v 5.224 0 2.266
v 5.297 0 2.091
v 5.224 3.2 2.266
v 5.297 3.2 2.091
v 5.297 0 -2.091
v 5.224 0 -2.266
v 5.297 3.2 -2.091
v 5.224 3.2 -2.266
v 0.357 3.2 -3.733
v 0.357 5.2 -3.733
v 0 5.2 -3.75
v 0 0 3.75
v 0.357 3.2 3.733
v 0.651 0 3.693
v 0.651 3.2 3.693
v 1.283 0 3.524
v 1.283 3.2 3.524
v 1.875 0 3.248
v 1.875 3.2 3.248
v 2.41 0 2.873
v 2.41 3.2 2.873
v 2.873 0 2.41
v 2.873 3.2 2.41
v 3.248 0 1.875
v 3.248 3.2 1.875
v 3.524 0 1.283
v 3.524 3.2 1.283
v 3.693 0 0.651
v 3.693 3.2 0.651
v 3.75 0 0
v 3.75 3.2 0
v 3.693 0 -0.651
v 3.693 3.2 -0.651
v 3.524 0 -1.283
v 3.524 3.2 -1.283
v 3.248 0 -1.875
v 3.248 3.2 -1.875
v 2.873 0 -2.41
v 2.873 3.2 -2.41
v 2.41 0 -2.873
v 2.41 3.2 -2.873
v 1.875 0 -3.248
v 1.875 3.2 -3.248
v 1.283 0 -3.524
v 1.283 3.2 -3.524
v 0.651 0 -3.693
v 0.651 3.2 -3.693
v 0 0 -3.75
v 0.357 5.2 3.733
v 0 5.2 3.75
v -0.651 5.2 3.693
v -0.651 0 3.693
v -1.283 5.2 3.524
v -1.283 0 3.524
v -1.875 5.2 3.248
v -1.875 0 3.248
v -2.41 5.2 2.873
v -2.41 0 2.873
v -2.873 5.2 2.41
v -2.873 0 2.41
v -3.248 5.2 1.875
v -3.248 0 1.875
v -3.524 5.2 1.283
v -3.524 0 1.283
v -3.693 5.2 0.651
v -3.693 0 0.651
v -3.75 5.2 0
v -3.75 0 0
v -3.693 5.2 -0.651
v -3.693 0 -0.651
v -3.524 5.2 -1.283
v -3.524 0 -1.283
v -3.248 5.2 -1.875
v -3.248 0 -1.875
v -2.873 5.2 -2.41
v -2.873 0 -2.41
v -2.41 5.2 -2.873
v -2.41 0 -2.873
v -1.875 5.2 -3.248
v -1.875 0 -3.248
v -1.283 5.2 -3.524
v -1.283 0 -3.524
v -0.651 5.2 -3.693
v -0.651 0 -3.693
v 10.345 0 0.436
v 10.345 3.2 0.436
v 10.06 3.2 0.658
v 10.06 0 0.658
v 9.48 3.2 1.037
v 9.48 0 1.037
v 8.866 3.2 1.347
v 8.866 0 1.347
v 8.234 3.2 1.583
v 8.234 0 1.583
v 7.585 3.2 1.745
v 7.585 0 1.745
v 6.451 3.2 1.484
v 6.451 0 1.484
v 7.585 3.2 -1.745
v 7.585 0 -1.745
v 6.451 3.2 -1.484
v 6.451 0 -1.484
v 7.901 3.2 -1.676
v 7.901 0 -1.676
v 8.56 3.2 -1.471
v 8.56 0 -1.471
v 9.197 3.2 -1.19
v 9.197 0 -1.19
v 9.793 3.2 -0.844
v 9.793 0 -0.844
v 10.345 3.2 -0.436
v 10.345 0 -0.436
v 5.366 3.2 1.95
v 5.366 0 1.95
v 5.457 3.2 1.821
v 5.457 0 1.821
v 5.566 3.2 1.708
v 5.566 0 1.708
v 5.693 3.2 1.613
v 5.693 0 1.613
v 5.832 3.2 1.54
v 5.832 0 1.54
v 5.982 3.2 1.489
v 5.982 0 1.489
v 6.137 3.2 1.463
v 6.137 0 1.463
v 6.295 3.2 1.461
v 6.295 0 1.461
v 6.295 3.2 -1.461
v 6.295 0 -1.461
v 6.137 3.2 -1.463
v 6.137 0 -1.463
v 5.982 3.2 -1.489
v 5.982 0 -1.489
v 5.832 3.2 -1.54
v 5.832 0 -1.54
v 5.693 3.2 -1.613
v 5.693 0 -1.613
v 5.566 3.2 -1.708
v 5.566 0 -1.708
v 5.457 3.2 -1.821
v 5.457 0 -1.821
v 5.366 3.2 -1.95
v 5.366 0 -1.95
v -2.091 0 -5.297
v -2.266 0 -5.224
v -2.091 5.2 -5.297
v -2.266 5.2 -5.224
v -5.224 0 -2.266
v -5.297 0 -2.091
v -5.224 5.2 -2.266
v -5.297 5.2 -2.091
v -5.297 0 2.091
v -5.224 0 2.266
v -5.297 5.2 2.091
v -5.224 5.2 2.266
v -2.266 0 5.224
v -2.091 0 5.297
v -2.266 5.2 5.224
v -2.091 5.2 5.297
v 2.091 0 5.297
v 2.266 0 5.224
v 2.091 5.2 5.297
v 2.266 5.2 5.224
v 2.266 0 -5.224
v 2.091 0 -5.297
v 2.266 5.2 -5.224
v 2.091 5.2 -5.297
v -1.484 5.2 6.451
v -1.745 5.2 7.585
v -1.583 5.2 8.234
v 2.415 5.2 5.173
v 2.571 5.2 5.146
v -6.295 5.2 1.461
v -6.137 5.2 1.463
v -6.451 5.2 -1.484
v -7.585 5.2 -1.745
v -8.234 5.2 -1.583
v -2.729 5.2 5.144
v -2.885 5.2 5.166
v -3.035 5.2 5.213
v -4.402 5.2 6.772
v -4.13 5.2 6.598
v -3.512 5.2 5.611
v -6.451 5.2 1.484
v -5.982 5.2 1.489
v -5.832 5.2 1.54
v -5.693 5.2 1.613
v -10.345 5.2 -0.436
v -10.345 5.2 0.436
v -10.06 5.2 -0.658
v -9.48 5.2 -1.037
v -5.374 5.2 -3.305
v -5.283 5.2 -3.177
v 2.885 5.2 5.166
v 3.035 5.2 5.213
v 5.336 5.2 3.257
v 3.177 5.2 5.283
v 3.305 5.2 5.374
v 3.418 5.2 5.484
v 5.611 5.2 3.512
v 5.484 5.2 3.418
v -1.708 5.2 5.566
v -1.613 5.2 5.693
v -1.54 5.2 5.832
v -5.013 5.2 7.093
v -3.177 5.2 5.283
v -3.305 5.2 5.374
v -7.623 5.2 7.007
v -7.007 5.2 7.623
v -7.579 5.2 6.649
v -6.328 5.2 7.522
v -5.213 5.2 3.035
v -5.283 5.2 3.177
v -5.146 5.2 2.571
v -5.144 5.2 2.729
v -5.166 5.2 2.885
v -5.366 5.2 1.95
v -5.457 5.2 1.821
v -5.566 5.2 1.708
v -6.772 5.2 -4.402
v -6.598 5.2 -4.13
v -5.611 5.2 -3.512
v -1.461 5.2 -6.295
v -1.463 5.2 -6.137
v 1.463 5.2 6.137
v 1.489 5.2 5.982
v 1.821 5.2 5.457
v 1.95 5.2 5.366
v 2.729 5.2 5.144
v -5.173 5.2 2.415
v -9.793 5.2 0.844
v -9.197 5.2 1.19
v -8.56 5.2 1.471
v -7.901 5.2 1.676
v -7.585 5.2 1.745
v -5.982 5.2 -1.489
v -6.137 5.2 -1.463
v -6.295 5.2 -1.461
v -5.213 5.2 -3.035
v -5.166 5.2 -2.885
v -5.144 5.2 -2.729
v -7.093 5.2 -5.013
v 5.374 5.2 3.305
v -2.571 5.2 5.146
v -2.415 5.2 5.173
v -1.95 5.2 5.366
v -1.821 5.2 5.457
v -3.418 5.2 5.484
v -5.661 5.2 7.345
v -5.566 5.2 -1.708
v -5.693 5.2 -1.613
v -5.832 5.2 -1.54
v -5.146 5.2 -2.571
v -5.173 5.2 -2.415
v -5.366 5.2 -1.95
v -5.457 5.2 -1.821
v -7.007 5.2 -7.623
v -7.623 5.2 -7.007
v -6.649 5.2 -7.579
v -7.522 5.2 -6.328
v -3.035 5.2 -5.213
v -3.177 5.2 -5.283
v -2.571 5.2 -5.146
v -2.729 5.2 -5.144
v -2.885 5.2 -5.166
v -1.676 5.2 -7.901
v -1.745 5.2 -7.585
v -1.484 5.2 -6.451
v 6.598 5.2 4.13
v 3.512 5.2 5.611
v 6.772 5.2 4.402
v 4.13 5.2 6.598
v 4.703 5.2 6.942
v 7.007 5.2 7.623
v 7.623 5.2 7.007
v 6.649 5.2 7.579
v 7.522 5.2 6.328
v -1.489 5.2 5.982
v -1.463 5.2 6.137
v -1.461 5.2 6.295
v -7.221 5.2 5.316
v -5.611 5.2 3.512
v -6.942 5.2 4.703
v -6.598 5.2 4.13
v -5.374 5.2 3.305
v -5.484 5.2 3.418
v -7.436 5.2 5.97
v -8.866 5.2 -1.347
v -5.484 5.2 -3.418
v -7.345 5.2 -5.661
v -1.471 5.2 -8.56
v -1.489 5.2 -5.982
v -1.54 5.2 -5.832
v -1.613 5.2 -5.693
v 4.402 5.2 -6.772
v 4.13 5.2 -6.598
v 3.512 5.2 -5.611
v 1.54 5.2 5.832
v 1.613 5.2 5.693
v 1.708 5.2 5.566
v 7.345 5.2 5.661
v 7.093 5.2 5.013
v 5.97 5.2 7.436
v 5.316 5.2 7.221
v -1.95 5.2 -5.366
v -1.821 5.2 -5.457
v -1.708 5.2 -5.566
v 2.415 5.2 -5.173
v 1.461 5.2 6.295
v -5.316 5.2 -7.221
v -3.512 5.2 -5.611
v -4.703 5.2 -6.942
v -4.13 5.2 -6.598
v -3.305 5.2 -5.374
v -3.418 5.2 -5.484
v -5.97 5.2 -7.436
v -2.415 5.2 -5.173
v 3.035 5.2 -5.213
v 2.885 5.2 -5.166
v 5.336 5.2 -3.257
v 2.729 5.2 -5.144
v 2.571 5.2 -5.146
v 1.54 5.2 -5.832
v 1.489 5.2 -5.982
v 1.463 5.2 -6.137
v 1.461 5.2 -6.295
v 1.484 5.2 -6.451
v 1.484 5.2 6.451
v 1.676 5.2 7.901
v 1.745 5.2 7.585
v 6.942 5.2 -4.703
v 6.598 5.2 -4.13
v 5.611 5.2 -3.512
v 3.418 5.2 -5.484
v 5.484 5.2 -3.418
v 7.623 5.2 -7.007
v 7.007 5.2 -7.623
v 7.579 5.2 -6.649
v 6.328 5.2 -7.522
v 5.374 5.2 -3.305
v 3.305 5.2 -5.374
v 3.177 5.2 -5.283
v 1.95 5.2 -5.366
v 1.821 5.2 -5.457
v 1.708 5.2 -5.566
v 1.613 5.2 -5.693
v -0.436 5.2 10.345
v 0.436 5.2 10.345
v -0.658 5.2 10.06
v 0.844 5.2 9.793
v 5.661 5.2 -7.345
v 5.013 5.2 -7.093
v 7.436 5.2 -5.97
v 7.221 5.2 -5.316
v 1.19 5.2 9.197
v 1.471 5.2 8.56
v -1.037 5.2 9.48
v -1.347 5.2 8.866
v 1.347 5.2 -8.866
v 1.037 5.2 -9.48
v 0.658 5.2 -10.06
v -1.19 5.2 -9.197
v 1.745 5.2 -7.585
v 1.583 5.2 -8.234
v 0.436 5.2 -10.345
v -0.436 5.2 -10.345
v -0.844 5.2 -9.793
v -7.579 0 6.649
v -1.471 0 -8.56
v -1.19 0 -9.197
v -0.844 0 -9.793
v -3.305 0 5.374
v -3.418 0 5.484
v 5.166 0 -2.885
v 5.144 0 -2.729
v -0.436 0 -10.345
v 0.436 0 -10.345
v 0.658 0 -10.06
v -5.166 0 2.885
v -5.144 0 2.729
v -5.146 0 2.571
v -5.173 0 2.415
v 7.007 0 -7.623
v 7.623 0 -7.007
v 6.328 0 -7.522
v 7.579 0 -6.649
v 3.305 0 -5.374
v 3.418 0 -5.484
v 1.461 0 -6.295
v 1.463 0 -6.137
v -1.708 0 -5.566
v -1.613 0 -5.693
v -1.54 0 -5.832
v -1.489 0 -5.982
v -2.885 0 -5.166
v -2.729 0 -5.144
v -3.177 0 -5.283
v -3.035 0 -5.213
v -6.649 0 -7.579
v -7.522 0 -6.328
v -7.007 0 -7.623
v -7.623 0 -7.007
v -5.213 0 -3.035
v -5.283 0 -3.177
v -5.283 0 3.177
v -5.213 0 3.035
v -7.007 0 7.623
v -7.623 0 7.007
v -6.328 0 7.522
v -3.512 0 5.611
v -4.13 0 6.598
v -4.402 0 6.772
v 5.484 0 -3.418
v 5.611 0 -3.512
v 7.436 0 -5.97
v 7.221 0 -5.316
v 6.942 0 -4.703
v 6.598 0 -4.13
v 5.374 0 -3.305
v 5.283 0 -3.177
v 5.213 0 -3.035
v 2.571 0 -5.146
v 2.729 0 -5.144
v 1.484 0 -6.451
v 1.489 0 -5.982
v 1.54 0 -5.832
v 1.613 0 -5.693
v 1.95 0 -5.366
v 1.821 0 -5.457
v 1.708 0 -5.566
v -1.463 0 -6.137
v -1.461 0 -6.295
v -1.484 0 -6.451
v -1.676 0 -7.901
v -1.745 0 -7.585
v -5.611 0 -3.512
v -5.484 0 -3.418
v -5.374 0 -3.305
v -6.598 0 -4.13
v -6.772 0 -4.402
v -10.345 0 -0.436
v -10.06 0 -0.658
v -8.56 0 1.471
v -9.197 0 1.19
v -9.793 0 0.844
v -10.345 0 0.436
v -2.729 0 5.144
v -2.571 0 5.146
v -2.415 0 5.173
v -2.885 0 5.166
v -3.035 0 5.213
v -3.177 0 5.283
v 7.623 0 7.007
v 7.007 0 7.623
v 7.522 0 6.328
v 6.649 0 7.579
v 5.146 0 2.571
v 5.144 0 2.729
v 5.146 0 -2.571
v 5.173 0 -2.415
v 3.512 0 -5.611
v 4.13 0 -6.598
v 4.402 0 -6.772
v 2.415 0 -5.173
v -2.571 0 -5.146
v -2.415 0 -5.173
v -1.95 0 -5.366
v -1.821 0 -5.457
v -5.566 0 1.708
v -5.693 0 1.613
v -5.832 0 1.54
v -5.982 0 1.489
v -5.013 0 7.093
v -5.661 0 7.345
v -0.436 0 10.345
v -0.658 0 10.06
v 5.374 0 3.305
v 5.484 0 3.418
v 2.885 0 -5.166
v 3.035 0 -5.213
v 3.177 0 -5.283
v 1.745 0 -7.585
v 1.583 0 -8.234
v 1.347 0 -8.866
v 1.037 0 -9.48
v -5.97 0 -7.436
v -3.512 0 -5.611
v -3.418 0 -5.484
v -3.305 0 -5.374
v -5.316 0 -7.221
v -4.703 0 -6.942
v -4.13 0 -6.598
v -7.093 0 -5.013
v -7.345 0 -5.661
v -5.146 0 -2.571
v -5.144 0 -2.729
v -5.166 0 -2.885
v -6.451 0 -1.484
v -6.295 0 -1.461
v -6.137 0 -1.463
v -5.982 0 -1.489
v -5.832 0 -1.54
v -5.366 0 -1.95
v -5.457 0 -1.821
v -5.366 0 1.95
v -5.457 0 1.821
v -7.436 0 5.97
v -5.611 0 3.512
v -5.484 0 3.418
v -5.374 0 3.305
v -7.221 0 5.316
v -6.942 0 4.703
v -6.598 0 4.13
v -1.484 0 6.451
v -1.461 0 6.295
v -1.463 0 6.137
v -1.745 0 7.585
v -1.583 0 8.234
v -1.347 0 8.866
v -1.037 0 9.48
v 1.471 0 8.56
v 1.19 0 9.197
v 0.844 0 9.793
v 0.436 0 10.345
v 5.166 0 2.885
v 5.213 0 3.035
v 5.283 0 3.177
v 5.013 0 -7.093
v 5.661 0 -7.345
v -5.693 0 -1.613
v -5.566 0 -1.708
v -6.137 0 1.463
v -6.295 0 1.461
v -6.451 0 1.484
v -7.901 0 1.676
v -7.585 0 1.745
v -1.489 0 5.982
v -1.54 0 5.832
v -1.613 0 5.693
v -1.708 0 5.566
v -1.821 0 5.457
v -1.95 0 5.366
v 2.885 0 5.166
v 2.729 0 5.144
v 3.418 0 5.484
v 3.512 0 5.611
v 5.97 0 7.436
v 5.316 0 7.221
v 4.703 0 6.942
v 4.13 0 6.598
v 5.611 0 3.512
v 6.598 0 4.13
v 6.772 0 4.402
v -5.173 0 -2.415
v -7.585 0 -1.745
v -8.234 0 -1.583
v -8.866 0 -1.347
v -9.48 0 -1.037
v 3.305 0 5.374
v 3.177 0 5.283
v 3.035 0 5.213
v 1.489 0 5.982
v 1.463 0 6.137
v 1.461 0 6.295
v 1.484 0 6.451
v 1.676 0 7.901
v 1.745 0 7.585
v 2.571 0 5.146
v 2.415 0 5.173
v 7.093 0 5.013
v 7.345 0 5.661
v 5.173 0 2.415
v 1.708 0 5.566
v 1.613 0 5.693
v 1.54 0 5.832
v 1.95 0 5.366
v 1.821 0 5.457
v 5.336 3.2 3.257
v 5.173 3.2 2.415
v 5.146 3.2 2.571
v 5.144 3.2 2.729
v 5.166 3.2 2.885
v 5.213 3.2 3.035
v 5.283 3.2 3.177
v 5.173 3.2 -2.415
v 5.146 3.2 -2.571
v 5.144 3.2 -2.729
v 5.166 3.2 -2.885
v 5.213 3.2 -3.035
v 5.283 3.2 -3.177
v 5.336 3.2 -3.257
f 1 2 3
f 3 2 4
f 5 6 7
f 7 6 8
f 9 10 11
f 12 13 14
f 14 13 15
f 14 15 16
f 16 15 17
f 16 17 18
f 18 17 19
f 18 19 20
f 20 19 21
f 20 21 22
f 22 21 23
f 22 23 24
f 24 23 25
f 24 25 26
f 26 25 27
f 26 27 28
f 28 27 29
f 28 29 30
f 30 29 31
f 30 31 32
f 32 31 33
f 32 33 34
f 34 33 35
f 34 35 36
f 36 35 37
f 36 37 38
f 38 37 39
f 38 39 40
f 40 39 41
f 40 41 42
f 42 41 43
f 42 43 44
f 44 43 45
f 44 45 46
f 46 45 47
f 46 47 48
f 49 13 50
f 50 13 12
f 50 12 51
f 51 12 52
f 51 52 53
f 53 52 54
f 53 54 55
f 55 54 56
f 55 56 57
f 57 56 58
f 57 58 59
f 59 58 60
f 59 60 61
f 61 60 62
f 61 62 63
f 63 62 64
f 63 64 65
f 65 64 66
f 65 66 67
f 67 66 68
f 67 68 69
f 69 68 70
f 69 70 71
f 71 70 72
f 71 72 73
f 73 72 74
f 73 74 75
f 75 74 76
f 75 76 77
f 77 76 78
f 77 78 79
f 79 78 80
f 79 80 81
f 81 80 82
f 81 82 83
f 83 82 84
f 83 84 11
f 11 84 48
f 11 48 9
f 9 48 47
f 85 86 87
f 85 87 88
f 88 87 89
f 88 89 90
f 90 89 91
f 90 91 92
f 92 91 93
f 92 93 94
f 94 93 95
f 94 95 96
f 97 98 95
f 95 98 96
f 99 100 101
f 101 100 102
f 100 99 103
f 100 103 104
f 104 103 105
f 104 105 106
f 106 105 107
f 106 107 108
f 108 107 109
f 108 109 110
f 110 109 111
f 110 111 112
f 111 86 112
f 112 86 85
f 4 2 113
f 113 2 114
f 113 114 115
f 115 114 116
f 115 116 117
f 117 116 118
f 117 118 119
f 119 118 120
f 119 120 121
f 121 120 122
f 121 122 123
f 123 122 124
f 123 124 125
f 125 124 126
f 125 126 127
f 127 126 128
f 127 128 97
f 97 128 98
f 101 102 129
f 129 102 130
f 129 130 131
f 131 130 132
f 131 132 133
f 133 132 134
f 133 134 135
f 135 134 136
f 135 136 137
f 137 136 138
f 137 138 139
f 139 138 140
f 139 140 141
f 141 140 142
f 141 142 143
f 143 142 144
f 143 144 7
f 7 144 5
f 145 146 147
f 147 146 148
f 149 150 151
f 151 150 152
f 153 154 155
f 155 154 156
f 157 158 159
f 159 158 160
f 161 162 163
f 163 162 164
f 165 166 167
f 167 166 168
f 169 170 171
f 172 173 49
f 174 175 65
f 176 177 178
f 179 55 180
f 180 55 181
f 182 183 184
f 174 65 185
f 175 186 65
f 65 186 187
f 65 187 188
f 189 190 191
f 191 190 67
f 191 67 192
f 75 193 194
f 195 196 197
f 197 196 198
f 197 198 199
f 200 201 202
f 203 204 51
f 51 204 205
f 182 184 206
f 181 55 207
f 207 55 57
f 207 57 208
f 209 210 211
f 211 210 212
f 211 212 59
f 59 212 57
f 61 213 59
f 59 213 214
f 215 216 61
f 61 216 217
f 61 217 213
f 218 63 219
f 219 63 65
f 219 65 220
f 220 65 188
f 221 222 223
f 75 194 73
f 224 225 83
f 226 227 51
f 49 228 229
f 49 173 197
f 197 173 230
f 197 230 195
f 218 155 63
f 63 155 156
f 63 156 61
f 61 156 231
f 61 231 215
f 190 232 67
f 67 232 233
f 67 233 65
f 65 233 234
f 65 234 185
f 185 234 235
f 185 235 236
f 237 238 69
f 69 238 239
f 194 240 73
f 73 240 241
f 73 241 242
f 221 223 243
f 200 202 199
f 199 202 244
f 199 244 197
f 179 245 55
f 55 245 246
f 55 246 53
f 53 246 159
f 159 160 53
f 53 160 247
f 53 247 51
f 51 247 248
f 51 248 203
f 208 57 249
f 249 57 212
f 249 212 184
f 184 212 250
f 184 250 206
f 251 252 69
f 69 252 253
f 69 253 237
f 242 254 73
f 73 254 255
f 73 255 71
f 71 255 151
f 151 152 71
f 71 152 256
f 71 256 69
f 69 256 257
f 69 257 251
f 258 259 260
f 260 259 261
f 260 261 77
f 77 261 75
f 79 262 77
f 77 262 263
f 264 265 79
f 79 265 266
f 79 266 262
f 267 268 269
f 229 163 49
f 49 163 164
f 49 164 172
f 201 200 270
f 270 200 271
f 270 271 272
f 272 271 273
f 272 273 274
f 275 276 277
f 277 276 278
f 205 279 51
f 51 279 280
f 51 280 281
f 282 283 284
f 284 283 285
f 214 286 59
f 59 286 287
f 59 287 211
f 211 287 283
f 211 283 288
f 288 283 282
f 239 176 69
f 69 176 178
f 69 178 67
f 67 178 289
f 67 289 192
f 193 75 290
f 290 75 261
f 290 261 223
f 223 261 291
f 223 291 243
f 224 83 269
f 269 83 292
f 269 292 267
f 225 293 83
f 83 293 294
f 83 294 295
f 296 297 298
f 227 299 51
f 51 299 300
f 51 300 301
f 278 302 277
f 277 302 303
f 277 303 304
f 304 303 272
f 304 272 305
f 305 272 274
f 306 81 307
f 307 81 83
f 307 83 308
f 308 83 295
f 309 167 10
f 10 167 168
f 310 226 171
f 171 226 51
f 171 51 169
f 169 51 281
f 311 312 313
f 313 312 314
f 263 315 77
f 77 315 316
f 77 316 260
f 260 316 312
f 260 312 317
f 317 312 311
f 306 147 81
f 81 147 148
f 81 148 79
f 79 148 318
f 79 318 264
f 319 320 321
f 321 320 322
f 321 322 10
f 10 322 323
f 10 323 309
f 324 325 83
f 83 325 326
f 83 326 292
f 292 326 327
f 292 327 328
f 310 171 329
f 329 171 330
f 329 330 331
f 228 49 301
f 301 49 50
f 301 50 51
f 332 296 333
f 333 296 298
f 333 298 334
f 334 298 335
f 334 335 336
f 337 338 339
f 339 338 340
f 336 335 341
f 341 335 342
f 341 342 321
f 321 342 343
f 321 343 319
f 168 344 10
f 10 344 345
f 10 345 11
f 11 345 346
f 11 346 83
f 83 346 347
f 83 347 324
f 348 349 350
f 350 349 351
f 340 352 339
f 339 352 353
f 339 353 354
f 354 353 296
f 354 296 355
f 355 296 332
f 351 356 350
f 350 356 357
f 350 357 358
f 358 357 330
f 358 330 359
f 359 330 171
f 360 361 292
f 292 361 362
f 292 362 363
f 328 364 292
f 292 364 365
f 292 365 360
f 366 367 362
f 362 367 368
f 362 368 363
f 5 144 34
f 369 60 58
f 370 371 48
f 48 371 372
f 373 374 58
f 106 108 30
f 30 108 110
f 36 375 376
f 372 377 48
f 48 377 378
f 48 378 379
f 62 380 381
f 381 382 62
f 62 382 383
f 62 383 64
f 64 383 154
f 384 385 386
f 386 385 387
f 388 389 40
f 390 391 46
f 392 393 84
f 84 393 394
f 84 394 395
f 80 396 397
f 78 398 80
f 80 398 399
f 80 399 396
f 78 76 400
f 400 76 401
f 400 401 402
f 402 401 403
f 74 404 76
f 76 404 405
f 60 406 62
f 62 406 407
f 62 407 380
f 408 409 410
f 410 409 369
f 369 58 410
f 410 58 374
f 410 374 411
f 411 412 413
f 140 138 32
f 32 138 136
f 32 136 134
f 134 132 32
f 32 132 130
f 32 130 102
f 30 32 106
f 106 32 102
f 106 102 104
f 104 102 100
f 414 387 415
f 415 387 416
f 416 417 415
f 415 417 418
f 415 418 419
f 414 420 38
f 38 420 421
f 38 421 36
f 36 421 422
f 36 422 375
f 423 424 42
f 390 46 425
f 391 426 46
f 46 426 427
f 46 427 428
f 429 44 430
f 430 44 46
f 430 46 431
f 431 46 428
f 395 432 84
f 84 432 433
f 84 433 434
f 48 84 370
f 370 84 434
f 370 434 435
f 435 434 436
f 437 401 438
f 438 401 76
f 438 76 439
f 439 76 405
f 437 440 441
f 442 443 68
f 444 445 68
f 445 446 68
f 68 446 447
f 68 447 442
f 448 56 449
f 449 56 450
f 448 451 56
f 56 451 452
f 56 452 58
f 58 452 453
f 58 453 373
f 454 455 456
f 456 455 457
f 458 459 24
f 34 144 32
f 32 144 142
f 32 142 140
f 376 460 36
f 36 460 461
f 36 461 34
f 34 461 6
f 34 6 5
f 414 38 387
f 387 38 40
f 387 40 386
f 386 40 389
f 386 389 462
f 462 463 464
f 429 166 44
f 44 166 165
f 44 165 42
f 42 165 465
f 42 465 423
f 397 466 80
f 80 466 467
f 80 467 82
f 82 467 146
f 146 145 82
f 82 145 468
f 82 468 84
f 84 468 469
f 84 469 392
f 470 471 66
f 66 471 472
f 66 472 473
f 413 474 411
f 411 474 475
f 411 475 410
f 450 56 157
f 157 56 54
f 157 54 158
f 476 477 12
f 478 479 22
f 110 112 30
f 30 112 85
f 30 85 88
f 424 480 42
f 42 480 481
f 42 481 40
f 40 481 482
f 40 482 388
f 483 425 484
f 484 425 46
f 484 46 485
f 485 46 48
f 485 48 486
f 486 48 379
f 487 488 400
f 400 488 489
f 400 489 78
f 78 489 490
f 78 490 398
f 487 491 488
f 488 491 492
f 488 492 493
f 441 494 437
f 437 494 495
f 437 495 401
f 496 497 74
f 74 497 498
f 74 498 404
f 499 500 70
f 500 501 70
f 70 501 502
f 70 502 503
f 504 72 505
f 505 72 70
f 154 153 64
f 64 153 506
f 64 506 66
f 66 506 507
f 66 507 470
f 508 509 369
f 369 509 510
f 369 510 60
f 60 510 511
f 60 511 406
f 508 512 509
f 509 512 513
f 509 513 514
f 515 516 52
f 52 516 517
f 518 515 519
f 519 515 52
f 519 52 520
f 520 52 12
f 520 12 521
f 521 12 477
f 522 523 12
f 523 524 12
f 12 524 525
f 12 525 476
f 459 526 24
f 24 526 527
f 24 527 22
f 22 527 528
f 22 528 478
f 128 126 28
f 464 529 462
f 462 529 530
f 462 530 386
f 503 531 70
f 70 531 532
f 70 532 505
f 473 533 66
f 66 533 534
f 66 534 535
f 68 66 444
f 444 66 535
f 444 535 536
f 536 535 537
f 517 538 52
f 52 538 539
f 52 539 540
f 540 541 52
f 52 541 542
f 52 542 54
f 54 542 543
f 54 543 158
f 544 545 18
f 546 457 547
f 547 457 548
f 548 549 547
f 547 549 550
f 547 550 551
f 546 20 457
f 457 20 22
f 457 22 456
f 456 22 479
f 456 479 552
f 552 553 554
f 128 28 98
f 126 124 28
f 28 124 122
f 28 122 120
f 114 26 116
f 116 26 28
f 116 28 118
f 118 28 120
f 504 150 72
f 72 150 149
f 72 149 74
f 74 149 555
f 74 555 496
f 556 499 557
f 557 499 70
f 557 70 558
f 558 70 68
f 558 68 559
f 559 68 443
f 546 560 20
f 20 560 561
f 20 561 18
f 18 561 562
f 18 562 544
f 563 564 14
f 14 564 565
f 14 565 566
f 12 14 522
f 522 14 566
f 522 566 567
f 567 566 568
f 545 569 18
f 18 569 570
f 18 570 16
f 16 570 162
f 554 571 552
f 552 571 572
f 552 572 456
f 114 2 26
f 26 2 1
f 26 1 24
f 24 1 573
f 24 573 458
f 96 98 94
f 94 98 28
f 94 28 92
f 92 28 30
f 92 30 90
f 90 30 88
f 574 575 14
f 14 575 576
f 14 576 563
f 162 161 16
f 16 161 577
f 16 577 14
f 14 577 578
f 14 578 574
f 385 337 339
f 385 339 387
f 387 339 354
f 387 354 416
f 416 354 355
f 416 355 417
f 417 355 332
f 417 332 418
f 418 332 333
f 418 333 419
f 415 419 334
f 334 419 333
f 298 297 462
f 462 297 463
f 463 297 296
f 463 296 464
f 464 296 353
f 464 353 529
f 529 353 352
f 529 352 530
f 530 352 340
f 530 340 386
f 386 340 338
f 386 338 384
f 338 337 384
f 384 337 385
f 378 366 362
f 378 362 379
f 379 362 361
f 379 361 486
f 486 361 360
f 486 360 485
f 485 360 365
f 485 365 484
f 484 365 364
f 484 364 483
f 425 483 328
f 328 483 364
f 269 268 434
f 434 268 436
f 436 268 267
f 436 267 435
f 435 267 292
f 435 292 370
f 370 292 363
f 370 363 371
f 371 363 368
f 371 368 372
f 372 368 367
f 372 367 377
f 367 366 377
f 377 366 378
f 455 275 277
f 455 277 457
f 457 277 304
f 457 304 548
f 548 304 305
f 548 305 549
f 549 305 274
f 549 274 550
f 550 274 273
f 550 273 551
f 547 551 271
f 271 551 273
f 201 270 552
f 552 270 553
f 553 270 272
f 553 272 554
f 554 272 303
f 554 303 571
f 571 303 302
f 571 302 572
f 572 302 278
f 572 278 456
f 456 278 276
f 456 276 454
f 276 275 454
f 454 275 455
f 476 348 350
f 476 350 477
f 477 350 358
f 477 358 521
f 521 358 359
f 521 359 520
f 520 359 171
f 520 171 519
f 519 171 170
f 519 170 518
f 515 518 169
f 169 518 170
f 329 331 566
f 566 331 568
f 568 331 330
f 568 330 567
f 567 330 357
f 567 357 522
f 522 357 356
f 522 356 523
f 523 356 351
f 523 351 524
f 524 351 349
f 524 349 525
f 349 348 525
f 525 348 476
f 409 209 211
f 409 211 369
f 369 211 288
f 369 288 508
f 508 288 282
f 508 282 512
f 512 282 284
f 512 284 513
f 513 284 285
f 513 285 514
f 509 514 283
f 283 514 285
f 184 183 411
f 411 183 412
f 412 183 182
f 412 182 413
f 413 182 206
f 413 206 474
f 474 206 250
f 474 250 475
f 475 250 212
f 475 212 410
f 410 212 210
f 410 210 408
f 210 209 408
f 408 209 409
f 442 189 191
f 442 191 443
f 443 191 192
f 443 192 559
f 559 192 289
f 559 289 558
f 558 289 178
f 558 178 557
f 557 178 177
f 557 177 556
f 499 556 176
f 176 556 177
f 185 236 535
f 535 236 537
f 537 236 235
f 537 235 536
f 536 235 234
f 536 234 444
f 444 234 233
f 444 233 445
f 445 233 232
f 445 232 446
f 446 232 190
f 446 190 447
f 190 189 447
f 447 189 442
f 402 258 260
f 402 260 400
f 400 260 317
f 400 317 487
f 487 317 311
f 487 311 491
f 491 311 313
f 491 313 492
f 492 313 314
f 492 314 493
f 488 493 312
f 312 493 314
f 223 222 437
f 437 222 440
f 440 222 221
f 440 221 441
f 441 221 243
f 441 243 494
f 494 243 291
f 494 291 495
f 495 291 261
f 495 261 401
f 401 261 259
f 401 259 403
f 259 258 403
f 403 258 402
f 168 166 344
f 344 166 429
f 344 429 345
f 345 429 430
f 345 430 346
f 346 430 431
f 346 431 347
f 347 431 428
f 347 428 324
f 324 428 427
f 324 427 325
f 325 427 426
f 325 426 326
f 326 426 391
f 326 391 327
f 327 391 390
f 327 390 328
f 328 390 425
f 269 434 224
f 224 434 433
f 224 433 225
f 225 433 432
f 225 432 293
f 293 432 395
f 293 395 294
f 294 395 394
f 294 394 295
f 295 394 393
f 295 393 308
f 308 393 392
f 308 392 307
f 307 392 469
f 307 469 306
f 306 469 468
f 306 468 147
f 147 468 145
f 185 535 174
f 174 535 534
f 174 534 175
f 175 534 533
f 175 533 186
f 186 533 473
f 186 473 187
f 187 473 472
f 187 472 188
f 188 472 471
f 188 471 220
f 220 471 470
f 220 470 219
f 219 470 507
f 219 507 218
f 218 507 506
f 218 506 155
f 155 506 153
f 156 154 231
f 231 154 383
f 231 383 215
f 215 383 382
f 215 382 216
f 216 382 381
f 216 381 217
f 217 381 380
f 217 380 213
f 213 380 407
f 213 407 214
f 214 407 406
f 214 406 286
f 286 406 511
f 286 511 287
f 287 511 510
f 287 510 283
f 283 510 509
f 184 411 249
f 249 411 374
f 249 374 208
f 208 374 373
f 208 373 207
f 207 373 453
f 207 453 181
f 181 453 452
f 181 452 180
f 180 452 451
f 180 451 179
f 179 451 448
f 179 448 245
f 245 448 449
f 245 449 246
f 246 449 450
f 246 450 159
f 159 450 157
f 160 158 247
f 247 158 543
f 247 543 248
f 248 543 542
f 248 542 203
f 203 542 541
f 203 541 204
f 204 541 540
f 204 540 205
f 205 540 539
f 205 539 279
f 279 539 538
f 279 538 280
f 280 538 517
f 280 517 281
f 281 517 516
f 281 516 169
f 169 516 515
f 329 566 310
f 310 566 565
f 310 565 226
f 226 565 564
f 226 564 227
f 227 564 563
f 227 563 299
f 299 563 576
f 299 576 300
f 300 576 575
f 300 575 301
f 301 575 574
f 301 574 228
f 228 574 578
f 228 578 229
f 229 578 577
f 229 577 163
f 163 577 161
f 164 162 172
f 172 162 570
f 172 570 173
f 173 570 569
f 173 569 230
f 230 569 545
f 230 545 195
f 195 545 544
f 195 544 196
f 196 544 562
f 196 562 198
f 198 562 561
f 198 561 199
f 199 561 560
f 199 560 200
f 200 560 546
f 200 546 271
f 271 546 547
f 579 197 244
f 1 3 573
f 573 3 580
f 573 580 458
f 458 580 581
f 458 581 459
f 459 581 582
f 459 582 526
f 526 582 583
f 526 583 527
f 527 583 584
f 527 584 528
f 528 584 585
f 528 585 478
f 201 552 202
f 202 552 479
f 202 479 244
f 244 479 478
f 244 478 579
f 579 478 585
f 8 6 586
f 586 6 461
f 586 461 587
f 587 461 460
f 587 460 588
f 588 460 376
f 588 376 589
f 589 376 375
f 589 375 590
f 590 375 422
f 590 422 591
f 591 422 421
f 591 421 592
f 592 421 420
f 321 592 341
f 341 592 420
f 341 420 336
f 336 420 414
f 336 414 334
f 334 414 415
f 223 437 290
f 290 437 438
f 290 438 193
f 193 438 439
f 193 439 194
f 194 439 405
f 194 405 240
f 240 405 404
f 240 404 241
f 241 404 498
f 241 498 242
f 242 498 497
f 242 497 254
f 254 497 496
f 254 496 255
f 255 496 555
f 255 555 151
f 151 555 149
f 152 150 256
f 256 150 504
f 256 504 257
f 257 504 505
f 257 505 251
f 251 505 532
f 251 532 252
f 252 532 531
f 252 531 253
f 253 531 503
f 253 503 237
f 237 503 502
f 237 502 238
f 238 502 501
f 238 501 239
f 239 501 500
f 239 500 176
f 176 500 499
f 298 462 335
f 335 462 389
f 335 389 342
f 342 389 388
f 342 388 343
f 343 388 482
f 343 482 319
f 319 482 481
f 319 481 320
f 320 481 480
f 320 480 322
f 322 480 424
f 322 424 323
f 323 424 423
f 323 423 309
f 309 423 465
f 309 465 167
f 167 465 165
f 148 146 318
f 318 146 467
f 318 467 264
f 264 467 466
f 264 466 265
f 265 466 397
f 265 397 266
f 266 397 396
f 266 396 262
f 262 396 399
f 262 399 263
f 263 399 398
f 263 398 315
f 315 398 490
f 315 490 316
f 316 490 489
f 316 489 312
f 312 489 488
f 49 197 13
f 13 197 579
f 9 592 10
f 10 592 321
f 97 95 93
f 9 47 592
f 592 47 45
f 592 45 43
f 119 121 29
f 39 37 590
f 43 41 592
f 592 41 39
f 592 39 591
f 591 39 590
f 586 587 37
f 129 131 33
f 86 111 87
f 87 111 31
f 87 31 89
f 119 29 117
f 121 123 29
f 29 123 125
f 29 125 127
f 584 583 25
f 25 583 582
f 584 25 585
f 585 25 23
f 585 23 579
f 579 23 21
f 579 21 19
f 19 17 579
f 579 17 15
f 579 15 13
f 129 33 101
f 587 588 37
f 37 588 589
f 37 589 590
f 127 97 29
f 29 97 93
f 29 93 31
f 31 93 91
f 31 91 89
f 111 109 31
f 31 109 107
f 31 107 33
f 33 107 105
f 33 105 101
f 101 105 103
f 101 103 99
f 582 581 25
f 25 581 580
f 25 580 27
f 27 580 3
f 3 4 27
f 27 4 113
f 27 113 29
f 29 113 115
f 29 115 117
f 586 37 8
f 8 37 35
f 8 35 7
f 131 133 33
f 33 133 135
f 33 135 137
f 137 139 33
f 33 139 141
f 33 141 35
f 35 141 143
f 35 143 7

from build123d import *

# Parameters (mm, degrees)
SKETCH1_R           = 5.6945
SKETCH1_R_2         = 3.75
BOSS_EXTRUDE1_DEPTH = 5.2
BOSS_EXTRUDE3_START = -5.2
BOSS_EXTRUDE3_DEPTH = 5.2
FILLET1_R           = 1
FILLET2_R           = 1
CUT_EXTRUDE1_START  = -2
CUT_EXTRUDE1_DEPTH  = 2


with BuildPart() as part:
    # Sketch1 → Boss-Extrude1 (new body)
    with BuildSketch(Plane(origin=(0, 0, 0), x_dir=(1, 0, 0), z_dir=(0, 1, 0))):
        with Locations(Location((0, 0, 0), (0, 0, 270))):
            Circle(SKETCH1_R)
        with Locations(Location((0, 0, 0), (0, 0, 270))):
            Circle(SKETCH1_R_2, mode=Mode.SUBTRACT)
    extrude(amount=BOSS_EXTRUDE1_DEPTH)

    # Sketch2 → Boss-Extrude3 (add)
    with BuildSketch(Plane(origin=(0, 5.2, 0), x_dir=(1, 0, 0), z_dir=(0, 1, 0)).offset(BOSS_EXTRUDE3_START)):
        with BuildLine():
            Line((1.276851128, 5.549502811), (1.745257837, 7.585311288))
            add(Edge.make_bspline(
                [(1.745257837, 7.585311288), (1.554411596, 8.589760917), (1.089783036, 9.55790996), (0.435527939, 10.344585757)],
                knots=[0, 0, 0, 0, 1, 1, 1, 1], degree=3))
            ThreePointArc((0.435527939, 10.344585757), (0, 10.35375), (-0.435527939, 10.344585757))
            add(Edge.make_bspline(
                [(-1.745257837, 7.585311288), (-1.554411596, 8.589760917), (-1.089783036, 9.55790996), (-0.435527939, 10.344585757)],
                knots=[0, 0, 0, 0, 1, 1, 1, 1], degree=3))
            Line((-1.745257837, 7.585311288), (-1.276851128, 5.549502811))
            ThreePointArc((-1.276851128, 5.549502811), (0, 5.6945), (1.276851128, 5.549502811))
        make_face()
        with BuildLine():
            Line((3.021220978, 4.826961161), (4.129541397, 6.597708701))
            add(Edge.make_bspline(
                [(4.129541397, 6.597708701), (4.974743213, 7.173013173), (5.987869972, 7.529055922), (7.006761978, 7.622691496)],
                knots=[0, 0, 0, 0, 1, 1, 1, 1], degree=3))
            ThreePointArc((7.006761978, 7.622691496), (7.321206836, 7.321206836), (7.622691496, 7.006761978))
            add(Edge.make_bspline(
                [(6.597708701, 4.129541397), (7.173013173, 4.974743213), (7.529055922, 5.987869972), (7.622691496, 7.006761978)],
                knots=[0, 0, 0, 0, 1, 1, 1, 1], degree=3))
            Line((6.597708701, 4.129541397), (4.826961161, 3.021220978))
            ThreePointArc((4.826961161, 3.021220978), (4.026619565, 4.026619565), (3.021220978, 4.826961161))
        make_face()
        with BuildLine():
            Line((5.549502811, 1.276851128), (7.585311288, 1.745257837))
            add(Edge.make_bspline(
                [(7.585311288, 1.745257837), (8.589760917, 1.554411596), (9.55790996, 1.089783036), (10.344585757, 0.435527939)],
                knots=[0, 0, 0, 0, 1, 1, 1, 1], degree=3))
            ThreePointArc((10.344585757, 0.435527939), (10.35375, 0), (10.344585757, -0.435527939))
            add(Edge.make_bspline(
                [(7.585311288, -1.745257837), (8.589760917, -1.554411596), (9.55790996, -1.089783036), (10.344585757, -0.435527939)],
                knots=[0, 0, 0, 0, 1, 1, 1, 1], degree=3))
            Line((7.585311288, -1.745257837), (5.549502811, -1.276851128))
            ThreePointArc((5.549502811, -1.276851128), (5.6945, 0), (5.549502811, 1.276851128))
        make_face()
        with BuildLine():
            Line((4.826961161, -3.021220978), (6.597708701, -4.129541397))
            add(Edge.make_bspline(
                [(6.597708701, -4.129541397), (7.173013173, -4.974743213), (7.529055922, -5.987869972), (7.622691496, -7.006761978)],
                knots=[0, 0, 0, 0, 1, 1, 1, 1], degree=3))
            ThreePointArc((7.622691496, -7.006761978), (7.321206836, -7.321206836), (7.006761978, -7.622691496))
            add(Edge.make_bspline(
                [(4.129541397, -6.597708701), (4.974743213, -7.173013173), (5.987869972, -7.529055922), (7.006761978, -7.622691496)],
                knots=[0, 0, 0, 0, 1, 1, 1, 1], degree=3))
            Line((4.129541397, -6.597708701), (3.021220978, -4.826961161))
            ThreePointArc((3.021220978, -4.826961161), (4.026619565, -4.026619565), (4.826961161, -3.021220978))
        make_face()
        with BuildLine():
            Line((1.276851128, -5.549502811), (1.745257837, -7.585311288))
            add(Edge.make_bspline(
                [(1.745257837, -7.585311288), (1.554411596, -8.589760917), (1.089783036, -9.55790996), (0.435527939, -10.344585757)],
                knots=[0, 0, 0, 0, 1, 1, 1, 1], degree=3))
            ThreePointArc((0.435527939, -10.344585757), (0, -10.35375), (-0.435527939, -10.344585757))
            add(Edge.make_bspline(
                [(-1.745257837, -7.585311288), (-1.554411596, -8.589760917), (-1.089783036, -9.55790996), (-0.435527939, -10.344585757)],
                knots=[0, 0, 0, 0, 1, 1, 1, 1], degree=3))
            Line((-1.745257837, -7.585311288), (-1.276851128, -5.549502811))
            ThreePointArc((-1.276851128, -5.549502811), (0, -5.6945), (1.276851128, -5.549502811))
        make_face()
        with BuildLine():
            Line((-3.021220978, -4.826961161), (-4.129541397, -6.597708701))
            add(Edge.make_bspline(
                [(-4.129541397, -6.597708701), (-4.974743213, -7.173013173), (-5.987869972, -7.529055922), (-7.006761978, -7.622691496)],
                knots=[0, 0, 0, 0, 1, 1, 1, 1], degree=3))
            ThreePointArc((-7.006761978, -7.622691496), (-7.321206836, -7.321206836), (-7.622691496, -7.006761978))
            add(Edge.make_bspline(
                [(-6.597708701, -4.129541397), (-7.173013173, -4.974743213), (-7.529055922, -5.987869972), (-7.622691496, -7.006761978)],
                knots=[0, 0, 0, 0, 1, 1, 1, 1], degree=3))
            Line((-6.597708701, -4.129541397), (-4.826961161, -3.021220978))
            ThreePointArc((-4.826961161, -3.021220978), (-4.026619565, -4.026619565), (-3.021220978, -4.826961161))
        make_face()
        with BuildLine():
            Line((-5.549502811, -1.276851128), (-7.585311288, -1.745257837))
            add(Edge.make_bspline(
                [(-7.585311288, -1.745257837), (-8.589760917, -1.554411596), (-9.55790996, -1.089783036), (-10.344585757, -0.435527939)],
                knots=[0, 0, 0, 0, 1, 1, 1, 1], degree=3))
            ThreePointArc((-10.344585757, -0.435527939), (-10.35375, 0), (-10.344585757, 0.435527939))
            add(Edge.make_bspline(
                [(-7.585311288, 1.745257837), (-8.589760917, 1.554411596), (-9.55790996, 1.089783036), (-10.344585757, 0.435527939)],
                knots=[0, 0, 0, 0, 1, 1, 1, 1], degree=3))
            Line((-7.585311288, 1.745257837), (-5.549502811, 1.276851128))
            ThreePointArc((-5.549502811, 1.276851128), (-5.6945, 0), (-5.549502811, -1.276851128))
        make_face()
        with BuildLine():
            Line((-4.826961161, 3.021220978), (-6.597708701, 4.129541397))
            add(Edge.make_bspline(
                [(-6.597708701, 4.129541397), (-7.173013173, 4.974743213), (-7.529055922, 5.987869972), (-7.622691496, 7.006761978)],
                knots=[0, 0, 0, 0, 1, 1, 1, 1], degree=3))
            ThreePointArc((-7.622691496, 7.006761978), (-7.321206836, 7.321206836), (-7.006761978, 7.622691496))
            add(Edge.make_bspline(
                [(-4.129541397, 6.597708701), (-4.974743213, 7.173013173), (-5.987869972, 7.529055922), (-7.006761978, 7.622691496)],
                knots=[0, 0, 0, 0, 1, 1, 1, 1], degree=3))
            Line((-4.129541397, 6.597708701), (-3.021220978, 4.826961161))
            ThreePointArc((-3.021220978, 4.826961161), (-4.026619565, 4.026619565), (-4.826961161, 3.021220978))
        make_face()
    extrude(amount=BOSS_EXTRUDE3_DEPTH)

    # Fillet1
    fillet1_edges = [part.edges().sort_by_distance(p)[0] for p in [
        (1.276851128, 2.6, -5.549502811),
        (-1.276851128, 2.6, -5.549502811),
    ]]
    fillet(fillet1_edges, radius=FILLET1_R)

    # Fillet2
    fillet2_edges = [part.edges().sort_by_distance(p)[0] for p in [
        (-5.549502811, 2.6, -1.276851128),
        (-5.549502811, 2.6, 1.276851128),
        (-3.021220978, 2.6, -4.826961161),
        (-4.826961161, 2.6, -3.021220978),
        (4.826961161, 2.6, -3.021220978),
        (3.021220978, 2.6, -4.826961161),
        (5.549502811, 2.6, 1.276851128),
        (5.549502811, 2.6, -1.276851128),
        (3.021220978, 2.6, 4.826961161),
        (4.826961161, 2.6, 3.021220978),
        (-1.276851128, 2.6, 5.549502811),
        (1.276851128, 2.6, 5.549502811),
        (-4.826961161, 2.6, 3.021220978),
        (-3.021220978, 2.6, 4.826961161),
    ]]
    fillet(fillet2_edges, radius=FILLET2_R)

    # Sketch3 → Cut-Extrude1 (cut)
    with BuildSketch(Plane(origin=(0, 5.2, 0), x_dir=(1, 0, 0), z_dir=(0, 1, 0)).offset(CUT_EXTRUDE1_START)):
        with BuildLine():
            Line((0.356514085, 3.73301456), (14.428169014, 2.389129319))
            ThreePointArc((14.428169014, 2.389129319), (11.8, 0), (14.428169014, -2.389129319))
            Line((14.428169014, -2.389129319), (0.356514085, -3.73301456))
            ThreePointArc((0.356514085, -3.73301456), (3.75, 0), (0.356514085, 3.73301456))
        make_face()
    extrude(amount=CUT_EXTRUDE1_DEPTH, mode=Mode.SUBTRACT)


solid = part.part
